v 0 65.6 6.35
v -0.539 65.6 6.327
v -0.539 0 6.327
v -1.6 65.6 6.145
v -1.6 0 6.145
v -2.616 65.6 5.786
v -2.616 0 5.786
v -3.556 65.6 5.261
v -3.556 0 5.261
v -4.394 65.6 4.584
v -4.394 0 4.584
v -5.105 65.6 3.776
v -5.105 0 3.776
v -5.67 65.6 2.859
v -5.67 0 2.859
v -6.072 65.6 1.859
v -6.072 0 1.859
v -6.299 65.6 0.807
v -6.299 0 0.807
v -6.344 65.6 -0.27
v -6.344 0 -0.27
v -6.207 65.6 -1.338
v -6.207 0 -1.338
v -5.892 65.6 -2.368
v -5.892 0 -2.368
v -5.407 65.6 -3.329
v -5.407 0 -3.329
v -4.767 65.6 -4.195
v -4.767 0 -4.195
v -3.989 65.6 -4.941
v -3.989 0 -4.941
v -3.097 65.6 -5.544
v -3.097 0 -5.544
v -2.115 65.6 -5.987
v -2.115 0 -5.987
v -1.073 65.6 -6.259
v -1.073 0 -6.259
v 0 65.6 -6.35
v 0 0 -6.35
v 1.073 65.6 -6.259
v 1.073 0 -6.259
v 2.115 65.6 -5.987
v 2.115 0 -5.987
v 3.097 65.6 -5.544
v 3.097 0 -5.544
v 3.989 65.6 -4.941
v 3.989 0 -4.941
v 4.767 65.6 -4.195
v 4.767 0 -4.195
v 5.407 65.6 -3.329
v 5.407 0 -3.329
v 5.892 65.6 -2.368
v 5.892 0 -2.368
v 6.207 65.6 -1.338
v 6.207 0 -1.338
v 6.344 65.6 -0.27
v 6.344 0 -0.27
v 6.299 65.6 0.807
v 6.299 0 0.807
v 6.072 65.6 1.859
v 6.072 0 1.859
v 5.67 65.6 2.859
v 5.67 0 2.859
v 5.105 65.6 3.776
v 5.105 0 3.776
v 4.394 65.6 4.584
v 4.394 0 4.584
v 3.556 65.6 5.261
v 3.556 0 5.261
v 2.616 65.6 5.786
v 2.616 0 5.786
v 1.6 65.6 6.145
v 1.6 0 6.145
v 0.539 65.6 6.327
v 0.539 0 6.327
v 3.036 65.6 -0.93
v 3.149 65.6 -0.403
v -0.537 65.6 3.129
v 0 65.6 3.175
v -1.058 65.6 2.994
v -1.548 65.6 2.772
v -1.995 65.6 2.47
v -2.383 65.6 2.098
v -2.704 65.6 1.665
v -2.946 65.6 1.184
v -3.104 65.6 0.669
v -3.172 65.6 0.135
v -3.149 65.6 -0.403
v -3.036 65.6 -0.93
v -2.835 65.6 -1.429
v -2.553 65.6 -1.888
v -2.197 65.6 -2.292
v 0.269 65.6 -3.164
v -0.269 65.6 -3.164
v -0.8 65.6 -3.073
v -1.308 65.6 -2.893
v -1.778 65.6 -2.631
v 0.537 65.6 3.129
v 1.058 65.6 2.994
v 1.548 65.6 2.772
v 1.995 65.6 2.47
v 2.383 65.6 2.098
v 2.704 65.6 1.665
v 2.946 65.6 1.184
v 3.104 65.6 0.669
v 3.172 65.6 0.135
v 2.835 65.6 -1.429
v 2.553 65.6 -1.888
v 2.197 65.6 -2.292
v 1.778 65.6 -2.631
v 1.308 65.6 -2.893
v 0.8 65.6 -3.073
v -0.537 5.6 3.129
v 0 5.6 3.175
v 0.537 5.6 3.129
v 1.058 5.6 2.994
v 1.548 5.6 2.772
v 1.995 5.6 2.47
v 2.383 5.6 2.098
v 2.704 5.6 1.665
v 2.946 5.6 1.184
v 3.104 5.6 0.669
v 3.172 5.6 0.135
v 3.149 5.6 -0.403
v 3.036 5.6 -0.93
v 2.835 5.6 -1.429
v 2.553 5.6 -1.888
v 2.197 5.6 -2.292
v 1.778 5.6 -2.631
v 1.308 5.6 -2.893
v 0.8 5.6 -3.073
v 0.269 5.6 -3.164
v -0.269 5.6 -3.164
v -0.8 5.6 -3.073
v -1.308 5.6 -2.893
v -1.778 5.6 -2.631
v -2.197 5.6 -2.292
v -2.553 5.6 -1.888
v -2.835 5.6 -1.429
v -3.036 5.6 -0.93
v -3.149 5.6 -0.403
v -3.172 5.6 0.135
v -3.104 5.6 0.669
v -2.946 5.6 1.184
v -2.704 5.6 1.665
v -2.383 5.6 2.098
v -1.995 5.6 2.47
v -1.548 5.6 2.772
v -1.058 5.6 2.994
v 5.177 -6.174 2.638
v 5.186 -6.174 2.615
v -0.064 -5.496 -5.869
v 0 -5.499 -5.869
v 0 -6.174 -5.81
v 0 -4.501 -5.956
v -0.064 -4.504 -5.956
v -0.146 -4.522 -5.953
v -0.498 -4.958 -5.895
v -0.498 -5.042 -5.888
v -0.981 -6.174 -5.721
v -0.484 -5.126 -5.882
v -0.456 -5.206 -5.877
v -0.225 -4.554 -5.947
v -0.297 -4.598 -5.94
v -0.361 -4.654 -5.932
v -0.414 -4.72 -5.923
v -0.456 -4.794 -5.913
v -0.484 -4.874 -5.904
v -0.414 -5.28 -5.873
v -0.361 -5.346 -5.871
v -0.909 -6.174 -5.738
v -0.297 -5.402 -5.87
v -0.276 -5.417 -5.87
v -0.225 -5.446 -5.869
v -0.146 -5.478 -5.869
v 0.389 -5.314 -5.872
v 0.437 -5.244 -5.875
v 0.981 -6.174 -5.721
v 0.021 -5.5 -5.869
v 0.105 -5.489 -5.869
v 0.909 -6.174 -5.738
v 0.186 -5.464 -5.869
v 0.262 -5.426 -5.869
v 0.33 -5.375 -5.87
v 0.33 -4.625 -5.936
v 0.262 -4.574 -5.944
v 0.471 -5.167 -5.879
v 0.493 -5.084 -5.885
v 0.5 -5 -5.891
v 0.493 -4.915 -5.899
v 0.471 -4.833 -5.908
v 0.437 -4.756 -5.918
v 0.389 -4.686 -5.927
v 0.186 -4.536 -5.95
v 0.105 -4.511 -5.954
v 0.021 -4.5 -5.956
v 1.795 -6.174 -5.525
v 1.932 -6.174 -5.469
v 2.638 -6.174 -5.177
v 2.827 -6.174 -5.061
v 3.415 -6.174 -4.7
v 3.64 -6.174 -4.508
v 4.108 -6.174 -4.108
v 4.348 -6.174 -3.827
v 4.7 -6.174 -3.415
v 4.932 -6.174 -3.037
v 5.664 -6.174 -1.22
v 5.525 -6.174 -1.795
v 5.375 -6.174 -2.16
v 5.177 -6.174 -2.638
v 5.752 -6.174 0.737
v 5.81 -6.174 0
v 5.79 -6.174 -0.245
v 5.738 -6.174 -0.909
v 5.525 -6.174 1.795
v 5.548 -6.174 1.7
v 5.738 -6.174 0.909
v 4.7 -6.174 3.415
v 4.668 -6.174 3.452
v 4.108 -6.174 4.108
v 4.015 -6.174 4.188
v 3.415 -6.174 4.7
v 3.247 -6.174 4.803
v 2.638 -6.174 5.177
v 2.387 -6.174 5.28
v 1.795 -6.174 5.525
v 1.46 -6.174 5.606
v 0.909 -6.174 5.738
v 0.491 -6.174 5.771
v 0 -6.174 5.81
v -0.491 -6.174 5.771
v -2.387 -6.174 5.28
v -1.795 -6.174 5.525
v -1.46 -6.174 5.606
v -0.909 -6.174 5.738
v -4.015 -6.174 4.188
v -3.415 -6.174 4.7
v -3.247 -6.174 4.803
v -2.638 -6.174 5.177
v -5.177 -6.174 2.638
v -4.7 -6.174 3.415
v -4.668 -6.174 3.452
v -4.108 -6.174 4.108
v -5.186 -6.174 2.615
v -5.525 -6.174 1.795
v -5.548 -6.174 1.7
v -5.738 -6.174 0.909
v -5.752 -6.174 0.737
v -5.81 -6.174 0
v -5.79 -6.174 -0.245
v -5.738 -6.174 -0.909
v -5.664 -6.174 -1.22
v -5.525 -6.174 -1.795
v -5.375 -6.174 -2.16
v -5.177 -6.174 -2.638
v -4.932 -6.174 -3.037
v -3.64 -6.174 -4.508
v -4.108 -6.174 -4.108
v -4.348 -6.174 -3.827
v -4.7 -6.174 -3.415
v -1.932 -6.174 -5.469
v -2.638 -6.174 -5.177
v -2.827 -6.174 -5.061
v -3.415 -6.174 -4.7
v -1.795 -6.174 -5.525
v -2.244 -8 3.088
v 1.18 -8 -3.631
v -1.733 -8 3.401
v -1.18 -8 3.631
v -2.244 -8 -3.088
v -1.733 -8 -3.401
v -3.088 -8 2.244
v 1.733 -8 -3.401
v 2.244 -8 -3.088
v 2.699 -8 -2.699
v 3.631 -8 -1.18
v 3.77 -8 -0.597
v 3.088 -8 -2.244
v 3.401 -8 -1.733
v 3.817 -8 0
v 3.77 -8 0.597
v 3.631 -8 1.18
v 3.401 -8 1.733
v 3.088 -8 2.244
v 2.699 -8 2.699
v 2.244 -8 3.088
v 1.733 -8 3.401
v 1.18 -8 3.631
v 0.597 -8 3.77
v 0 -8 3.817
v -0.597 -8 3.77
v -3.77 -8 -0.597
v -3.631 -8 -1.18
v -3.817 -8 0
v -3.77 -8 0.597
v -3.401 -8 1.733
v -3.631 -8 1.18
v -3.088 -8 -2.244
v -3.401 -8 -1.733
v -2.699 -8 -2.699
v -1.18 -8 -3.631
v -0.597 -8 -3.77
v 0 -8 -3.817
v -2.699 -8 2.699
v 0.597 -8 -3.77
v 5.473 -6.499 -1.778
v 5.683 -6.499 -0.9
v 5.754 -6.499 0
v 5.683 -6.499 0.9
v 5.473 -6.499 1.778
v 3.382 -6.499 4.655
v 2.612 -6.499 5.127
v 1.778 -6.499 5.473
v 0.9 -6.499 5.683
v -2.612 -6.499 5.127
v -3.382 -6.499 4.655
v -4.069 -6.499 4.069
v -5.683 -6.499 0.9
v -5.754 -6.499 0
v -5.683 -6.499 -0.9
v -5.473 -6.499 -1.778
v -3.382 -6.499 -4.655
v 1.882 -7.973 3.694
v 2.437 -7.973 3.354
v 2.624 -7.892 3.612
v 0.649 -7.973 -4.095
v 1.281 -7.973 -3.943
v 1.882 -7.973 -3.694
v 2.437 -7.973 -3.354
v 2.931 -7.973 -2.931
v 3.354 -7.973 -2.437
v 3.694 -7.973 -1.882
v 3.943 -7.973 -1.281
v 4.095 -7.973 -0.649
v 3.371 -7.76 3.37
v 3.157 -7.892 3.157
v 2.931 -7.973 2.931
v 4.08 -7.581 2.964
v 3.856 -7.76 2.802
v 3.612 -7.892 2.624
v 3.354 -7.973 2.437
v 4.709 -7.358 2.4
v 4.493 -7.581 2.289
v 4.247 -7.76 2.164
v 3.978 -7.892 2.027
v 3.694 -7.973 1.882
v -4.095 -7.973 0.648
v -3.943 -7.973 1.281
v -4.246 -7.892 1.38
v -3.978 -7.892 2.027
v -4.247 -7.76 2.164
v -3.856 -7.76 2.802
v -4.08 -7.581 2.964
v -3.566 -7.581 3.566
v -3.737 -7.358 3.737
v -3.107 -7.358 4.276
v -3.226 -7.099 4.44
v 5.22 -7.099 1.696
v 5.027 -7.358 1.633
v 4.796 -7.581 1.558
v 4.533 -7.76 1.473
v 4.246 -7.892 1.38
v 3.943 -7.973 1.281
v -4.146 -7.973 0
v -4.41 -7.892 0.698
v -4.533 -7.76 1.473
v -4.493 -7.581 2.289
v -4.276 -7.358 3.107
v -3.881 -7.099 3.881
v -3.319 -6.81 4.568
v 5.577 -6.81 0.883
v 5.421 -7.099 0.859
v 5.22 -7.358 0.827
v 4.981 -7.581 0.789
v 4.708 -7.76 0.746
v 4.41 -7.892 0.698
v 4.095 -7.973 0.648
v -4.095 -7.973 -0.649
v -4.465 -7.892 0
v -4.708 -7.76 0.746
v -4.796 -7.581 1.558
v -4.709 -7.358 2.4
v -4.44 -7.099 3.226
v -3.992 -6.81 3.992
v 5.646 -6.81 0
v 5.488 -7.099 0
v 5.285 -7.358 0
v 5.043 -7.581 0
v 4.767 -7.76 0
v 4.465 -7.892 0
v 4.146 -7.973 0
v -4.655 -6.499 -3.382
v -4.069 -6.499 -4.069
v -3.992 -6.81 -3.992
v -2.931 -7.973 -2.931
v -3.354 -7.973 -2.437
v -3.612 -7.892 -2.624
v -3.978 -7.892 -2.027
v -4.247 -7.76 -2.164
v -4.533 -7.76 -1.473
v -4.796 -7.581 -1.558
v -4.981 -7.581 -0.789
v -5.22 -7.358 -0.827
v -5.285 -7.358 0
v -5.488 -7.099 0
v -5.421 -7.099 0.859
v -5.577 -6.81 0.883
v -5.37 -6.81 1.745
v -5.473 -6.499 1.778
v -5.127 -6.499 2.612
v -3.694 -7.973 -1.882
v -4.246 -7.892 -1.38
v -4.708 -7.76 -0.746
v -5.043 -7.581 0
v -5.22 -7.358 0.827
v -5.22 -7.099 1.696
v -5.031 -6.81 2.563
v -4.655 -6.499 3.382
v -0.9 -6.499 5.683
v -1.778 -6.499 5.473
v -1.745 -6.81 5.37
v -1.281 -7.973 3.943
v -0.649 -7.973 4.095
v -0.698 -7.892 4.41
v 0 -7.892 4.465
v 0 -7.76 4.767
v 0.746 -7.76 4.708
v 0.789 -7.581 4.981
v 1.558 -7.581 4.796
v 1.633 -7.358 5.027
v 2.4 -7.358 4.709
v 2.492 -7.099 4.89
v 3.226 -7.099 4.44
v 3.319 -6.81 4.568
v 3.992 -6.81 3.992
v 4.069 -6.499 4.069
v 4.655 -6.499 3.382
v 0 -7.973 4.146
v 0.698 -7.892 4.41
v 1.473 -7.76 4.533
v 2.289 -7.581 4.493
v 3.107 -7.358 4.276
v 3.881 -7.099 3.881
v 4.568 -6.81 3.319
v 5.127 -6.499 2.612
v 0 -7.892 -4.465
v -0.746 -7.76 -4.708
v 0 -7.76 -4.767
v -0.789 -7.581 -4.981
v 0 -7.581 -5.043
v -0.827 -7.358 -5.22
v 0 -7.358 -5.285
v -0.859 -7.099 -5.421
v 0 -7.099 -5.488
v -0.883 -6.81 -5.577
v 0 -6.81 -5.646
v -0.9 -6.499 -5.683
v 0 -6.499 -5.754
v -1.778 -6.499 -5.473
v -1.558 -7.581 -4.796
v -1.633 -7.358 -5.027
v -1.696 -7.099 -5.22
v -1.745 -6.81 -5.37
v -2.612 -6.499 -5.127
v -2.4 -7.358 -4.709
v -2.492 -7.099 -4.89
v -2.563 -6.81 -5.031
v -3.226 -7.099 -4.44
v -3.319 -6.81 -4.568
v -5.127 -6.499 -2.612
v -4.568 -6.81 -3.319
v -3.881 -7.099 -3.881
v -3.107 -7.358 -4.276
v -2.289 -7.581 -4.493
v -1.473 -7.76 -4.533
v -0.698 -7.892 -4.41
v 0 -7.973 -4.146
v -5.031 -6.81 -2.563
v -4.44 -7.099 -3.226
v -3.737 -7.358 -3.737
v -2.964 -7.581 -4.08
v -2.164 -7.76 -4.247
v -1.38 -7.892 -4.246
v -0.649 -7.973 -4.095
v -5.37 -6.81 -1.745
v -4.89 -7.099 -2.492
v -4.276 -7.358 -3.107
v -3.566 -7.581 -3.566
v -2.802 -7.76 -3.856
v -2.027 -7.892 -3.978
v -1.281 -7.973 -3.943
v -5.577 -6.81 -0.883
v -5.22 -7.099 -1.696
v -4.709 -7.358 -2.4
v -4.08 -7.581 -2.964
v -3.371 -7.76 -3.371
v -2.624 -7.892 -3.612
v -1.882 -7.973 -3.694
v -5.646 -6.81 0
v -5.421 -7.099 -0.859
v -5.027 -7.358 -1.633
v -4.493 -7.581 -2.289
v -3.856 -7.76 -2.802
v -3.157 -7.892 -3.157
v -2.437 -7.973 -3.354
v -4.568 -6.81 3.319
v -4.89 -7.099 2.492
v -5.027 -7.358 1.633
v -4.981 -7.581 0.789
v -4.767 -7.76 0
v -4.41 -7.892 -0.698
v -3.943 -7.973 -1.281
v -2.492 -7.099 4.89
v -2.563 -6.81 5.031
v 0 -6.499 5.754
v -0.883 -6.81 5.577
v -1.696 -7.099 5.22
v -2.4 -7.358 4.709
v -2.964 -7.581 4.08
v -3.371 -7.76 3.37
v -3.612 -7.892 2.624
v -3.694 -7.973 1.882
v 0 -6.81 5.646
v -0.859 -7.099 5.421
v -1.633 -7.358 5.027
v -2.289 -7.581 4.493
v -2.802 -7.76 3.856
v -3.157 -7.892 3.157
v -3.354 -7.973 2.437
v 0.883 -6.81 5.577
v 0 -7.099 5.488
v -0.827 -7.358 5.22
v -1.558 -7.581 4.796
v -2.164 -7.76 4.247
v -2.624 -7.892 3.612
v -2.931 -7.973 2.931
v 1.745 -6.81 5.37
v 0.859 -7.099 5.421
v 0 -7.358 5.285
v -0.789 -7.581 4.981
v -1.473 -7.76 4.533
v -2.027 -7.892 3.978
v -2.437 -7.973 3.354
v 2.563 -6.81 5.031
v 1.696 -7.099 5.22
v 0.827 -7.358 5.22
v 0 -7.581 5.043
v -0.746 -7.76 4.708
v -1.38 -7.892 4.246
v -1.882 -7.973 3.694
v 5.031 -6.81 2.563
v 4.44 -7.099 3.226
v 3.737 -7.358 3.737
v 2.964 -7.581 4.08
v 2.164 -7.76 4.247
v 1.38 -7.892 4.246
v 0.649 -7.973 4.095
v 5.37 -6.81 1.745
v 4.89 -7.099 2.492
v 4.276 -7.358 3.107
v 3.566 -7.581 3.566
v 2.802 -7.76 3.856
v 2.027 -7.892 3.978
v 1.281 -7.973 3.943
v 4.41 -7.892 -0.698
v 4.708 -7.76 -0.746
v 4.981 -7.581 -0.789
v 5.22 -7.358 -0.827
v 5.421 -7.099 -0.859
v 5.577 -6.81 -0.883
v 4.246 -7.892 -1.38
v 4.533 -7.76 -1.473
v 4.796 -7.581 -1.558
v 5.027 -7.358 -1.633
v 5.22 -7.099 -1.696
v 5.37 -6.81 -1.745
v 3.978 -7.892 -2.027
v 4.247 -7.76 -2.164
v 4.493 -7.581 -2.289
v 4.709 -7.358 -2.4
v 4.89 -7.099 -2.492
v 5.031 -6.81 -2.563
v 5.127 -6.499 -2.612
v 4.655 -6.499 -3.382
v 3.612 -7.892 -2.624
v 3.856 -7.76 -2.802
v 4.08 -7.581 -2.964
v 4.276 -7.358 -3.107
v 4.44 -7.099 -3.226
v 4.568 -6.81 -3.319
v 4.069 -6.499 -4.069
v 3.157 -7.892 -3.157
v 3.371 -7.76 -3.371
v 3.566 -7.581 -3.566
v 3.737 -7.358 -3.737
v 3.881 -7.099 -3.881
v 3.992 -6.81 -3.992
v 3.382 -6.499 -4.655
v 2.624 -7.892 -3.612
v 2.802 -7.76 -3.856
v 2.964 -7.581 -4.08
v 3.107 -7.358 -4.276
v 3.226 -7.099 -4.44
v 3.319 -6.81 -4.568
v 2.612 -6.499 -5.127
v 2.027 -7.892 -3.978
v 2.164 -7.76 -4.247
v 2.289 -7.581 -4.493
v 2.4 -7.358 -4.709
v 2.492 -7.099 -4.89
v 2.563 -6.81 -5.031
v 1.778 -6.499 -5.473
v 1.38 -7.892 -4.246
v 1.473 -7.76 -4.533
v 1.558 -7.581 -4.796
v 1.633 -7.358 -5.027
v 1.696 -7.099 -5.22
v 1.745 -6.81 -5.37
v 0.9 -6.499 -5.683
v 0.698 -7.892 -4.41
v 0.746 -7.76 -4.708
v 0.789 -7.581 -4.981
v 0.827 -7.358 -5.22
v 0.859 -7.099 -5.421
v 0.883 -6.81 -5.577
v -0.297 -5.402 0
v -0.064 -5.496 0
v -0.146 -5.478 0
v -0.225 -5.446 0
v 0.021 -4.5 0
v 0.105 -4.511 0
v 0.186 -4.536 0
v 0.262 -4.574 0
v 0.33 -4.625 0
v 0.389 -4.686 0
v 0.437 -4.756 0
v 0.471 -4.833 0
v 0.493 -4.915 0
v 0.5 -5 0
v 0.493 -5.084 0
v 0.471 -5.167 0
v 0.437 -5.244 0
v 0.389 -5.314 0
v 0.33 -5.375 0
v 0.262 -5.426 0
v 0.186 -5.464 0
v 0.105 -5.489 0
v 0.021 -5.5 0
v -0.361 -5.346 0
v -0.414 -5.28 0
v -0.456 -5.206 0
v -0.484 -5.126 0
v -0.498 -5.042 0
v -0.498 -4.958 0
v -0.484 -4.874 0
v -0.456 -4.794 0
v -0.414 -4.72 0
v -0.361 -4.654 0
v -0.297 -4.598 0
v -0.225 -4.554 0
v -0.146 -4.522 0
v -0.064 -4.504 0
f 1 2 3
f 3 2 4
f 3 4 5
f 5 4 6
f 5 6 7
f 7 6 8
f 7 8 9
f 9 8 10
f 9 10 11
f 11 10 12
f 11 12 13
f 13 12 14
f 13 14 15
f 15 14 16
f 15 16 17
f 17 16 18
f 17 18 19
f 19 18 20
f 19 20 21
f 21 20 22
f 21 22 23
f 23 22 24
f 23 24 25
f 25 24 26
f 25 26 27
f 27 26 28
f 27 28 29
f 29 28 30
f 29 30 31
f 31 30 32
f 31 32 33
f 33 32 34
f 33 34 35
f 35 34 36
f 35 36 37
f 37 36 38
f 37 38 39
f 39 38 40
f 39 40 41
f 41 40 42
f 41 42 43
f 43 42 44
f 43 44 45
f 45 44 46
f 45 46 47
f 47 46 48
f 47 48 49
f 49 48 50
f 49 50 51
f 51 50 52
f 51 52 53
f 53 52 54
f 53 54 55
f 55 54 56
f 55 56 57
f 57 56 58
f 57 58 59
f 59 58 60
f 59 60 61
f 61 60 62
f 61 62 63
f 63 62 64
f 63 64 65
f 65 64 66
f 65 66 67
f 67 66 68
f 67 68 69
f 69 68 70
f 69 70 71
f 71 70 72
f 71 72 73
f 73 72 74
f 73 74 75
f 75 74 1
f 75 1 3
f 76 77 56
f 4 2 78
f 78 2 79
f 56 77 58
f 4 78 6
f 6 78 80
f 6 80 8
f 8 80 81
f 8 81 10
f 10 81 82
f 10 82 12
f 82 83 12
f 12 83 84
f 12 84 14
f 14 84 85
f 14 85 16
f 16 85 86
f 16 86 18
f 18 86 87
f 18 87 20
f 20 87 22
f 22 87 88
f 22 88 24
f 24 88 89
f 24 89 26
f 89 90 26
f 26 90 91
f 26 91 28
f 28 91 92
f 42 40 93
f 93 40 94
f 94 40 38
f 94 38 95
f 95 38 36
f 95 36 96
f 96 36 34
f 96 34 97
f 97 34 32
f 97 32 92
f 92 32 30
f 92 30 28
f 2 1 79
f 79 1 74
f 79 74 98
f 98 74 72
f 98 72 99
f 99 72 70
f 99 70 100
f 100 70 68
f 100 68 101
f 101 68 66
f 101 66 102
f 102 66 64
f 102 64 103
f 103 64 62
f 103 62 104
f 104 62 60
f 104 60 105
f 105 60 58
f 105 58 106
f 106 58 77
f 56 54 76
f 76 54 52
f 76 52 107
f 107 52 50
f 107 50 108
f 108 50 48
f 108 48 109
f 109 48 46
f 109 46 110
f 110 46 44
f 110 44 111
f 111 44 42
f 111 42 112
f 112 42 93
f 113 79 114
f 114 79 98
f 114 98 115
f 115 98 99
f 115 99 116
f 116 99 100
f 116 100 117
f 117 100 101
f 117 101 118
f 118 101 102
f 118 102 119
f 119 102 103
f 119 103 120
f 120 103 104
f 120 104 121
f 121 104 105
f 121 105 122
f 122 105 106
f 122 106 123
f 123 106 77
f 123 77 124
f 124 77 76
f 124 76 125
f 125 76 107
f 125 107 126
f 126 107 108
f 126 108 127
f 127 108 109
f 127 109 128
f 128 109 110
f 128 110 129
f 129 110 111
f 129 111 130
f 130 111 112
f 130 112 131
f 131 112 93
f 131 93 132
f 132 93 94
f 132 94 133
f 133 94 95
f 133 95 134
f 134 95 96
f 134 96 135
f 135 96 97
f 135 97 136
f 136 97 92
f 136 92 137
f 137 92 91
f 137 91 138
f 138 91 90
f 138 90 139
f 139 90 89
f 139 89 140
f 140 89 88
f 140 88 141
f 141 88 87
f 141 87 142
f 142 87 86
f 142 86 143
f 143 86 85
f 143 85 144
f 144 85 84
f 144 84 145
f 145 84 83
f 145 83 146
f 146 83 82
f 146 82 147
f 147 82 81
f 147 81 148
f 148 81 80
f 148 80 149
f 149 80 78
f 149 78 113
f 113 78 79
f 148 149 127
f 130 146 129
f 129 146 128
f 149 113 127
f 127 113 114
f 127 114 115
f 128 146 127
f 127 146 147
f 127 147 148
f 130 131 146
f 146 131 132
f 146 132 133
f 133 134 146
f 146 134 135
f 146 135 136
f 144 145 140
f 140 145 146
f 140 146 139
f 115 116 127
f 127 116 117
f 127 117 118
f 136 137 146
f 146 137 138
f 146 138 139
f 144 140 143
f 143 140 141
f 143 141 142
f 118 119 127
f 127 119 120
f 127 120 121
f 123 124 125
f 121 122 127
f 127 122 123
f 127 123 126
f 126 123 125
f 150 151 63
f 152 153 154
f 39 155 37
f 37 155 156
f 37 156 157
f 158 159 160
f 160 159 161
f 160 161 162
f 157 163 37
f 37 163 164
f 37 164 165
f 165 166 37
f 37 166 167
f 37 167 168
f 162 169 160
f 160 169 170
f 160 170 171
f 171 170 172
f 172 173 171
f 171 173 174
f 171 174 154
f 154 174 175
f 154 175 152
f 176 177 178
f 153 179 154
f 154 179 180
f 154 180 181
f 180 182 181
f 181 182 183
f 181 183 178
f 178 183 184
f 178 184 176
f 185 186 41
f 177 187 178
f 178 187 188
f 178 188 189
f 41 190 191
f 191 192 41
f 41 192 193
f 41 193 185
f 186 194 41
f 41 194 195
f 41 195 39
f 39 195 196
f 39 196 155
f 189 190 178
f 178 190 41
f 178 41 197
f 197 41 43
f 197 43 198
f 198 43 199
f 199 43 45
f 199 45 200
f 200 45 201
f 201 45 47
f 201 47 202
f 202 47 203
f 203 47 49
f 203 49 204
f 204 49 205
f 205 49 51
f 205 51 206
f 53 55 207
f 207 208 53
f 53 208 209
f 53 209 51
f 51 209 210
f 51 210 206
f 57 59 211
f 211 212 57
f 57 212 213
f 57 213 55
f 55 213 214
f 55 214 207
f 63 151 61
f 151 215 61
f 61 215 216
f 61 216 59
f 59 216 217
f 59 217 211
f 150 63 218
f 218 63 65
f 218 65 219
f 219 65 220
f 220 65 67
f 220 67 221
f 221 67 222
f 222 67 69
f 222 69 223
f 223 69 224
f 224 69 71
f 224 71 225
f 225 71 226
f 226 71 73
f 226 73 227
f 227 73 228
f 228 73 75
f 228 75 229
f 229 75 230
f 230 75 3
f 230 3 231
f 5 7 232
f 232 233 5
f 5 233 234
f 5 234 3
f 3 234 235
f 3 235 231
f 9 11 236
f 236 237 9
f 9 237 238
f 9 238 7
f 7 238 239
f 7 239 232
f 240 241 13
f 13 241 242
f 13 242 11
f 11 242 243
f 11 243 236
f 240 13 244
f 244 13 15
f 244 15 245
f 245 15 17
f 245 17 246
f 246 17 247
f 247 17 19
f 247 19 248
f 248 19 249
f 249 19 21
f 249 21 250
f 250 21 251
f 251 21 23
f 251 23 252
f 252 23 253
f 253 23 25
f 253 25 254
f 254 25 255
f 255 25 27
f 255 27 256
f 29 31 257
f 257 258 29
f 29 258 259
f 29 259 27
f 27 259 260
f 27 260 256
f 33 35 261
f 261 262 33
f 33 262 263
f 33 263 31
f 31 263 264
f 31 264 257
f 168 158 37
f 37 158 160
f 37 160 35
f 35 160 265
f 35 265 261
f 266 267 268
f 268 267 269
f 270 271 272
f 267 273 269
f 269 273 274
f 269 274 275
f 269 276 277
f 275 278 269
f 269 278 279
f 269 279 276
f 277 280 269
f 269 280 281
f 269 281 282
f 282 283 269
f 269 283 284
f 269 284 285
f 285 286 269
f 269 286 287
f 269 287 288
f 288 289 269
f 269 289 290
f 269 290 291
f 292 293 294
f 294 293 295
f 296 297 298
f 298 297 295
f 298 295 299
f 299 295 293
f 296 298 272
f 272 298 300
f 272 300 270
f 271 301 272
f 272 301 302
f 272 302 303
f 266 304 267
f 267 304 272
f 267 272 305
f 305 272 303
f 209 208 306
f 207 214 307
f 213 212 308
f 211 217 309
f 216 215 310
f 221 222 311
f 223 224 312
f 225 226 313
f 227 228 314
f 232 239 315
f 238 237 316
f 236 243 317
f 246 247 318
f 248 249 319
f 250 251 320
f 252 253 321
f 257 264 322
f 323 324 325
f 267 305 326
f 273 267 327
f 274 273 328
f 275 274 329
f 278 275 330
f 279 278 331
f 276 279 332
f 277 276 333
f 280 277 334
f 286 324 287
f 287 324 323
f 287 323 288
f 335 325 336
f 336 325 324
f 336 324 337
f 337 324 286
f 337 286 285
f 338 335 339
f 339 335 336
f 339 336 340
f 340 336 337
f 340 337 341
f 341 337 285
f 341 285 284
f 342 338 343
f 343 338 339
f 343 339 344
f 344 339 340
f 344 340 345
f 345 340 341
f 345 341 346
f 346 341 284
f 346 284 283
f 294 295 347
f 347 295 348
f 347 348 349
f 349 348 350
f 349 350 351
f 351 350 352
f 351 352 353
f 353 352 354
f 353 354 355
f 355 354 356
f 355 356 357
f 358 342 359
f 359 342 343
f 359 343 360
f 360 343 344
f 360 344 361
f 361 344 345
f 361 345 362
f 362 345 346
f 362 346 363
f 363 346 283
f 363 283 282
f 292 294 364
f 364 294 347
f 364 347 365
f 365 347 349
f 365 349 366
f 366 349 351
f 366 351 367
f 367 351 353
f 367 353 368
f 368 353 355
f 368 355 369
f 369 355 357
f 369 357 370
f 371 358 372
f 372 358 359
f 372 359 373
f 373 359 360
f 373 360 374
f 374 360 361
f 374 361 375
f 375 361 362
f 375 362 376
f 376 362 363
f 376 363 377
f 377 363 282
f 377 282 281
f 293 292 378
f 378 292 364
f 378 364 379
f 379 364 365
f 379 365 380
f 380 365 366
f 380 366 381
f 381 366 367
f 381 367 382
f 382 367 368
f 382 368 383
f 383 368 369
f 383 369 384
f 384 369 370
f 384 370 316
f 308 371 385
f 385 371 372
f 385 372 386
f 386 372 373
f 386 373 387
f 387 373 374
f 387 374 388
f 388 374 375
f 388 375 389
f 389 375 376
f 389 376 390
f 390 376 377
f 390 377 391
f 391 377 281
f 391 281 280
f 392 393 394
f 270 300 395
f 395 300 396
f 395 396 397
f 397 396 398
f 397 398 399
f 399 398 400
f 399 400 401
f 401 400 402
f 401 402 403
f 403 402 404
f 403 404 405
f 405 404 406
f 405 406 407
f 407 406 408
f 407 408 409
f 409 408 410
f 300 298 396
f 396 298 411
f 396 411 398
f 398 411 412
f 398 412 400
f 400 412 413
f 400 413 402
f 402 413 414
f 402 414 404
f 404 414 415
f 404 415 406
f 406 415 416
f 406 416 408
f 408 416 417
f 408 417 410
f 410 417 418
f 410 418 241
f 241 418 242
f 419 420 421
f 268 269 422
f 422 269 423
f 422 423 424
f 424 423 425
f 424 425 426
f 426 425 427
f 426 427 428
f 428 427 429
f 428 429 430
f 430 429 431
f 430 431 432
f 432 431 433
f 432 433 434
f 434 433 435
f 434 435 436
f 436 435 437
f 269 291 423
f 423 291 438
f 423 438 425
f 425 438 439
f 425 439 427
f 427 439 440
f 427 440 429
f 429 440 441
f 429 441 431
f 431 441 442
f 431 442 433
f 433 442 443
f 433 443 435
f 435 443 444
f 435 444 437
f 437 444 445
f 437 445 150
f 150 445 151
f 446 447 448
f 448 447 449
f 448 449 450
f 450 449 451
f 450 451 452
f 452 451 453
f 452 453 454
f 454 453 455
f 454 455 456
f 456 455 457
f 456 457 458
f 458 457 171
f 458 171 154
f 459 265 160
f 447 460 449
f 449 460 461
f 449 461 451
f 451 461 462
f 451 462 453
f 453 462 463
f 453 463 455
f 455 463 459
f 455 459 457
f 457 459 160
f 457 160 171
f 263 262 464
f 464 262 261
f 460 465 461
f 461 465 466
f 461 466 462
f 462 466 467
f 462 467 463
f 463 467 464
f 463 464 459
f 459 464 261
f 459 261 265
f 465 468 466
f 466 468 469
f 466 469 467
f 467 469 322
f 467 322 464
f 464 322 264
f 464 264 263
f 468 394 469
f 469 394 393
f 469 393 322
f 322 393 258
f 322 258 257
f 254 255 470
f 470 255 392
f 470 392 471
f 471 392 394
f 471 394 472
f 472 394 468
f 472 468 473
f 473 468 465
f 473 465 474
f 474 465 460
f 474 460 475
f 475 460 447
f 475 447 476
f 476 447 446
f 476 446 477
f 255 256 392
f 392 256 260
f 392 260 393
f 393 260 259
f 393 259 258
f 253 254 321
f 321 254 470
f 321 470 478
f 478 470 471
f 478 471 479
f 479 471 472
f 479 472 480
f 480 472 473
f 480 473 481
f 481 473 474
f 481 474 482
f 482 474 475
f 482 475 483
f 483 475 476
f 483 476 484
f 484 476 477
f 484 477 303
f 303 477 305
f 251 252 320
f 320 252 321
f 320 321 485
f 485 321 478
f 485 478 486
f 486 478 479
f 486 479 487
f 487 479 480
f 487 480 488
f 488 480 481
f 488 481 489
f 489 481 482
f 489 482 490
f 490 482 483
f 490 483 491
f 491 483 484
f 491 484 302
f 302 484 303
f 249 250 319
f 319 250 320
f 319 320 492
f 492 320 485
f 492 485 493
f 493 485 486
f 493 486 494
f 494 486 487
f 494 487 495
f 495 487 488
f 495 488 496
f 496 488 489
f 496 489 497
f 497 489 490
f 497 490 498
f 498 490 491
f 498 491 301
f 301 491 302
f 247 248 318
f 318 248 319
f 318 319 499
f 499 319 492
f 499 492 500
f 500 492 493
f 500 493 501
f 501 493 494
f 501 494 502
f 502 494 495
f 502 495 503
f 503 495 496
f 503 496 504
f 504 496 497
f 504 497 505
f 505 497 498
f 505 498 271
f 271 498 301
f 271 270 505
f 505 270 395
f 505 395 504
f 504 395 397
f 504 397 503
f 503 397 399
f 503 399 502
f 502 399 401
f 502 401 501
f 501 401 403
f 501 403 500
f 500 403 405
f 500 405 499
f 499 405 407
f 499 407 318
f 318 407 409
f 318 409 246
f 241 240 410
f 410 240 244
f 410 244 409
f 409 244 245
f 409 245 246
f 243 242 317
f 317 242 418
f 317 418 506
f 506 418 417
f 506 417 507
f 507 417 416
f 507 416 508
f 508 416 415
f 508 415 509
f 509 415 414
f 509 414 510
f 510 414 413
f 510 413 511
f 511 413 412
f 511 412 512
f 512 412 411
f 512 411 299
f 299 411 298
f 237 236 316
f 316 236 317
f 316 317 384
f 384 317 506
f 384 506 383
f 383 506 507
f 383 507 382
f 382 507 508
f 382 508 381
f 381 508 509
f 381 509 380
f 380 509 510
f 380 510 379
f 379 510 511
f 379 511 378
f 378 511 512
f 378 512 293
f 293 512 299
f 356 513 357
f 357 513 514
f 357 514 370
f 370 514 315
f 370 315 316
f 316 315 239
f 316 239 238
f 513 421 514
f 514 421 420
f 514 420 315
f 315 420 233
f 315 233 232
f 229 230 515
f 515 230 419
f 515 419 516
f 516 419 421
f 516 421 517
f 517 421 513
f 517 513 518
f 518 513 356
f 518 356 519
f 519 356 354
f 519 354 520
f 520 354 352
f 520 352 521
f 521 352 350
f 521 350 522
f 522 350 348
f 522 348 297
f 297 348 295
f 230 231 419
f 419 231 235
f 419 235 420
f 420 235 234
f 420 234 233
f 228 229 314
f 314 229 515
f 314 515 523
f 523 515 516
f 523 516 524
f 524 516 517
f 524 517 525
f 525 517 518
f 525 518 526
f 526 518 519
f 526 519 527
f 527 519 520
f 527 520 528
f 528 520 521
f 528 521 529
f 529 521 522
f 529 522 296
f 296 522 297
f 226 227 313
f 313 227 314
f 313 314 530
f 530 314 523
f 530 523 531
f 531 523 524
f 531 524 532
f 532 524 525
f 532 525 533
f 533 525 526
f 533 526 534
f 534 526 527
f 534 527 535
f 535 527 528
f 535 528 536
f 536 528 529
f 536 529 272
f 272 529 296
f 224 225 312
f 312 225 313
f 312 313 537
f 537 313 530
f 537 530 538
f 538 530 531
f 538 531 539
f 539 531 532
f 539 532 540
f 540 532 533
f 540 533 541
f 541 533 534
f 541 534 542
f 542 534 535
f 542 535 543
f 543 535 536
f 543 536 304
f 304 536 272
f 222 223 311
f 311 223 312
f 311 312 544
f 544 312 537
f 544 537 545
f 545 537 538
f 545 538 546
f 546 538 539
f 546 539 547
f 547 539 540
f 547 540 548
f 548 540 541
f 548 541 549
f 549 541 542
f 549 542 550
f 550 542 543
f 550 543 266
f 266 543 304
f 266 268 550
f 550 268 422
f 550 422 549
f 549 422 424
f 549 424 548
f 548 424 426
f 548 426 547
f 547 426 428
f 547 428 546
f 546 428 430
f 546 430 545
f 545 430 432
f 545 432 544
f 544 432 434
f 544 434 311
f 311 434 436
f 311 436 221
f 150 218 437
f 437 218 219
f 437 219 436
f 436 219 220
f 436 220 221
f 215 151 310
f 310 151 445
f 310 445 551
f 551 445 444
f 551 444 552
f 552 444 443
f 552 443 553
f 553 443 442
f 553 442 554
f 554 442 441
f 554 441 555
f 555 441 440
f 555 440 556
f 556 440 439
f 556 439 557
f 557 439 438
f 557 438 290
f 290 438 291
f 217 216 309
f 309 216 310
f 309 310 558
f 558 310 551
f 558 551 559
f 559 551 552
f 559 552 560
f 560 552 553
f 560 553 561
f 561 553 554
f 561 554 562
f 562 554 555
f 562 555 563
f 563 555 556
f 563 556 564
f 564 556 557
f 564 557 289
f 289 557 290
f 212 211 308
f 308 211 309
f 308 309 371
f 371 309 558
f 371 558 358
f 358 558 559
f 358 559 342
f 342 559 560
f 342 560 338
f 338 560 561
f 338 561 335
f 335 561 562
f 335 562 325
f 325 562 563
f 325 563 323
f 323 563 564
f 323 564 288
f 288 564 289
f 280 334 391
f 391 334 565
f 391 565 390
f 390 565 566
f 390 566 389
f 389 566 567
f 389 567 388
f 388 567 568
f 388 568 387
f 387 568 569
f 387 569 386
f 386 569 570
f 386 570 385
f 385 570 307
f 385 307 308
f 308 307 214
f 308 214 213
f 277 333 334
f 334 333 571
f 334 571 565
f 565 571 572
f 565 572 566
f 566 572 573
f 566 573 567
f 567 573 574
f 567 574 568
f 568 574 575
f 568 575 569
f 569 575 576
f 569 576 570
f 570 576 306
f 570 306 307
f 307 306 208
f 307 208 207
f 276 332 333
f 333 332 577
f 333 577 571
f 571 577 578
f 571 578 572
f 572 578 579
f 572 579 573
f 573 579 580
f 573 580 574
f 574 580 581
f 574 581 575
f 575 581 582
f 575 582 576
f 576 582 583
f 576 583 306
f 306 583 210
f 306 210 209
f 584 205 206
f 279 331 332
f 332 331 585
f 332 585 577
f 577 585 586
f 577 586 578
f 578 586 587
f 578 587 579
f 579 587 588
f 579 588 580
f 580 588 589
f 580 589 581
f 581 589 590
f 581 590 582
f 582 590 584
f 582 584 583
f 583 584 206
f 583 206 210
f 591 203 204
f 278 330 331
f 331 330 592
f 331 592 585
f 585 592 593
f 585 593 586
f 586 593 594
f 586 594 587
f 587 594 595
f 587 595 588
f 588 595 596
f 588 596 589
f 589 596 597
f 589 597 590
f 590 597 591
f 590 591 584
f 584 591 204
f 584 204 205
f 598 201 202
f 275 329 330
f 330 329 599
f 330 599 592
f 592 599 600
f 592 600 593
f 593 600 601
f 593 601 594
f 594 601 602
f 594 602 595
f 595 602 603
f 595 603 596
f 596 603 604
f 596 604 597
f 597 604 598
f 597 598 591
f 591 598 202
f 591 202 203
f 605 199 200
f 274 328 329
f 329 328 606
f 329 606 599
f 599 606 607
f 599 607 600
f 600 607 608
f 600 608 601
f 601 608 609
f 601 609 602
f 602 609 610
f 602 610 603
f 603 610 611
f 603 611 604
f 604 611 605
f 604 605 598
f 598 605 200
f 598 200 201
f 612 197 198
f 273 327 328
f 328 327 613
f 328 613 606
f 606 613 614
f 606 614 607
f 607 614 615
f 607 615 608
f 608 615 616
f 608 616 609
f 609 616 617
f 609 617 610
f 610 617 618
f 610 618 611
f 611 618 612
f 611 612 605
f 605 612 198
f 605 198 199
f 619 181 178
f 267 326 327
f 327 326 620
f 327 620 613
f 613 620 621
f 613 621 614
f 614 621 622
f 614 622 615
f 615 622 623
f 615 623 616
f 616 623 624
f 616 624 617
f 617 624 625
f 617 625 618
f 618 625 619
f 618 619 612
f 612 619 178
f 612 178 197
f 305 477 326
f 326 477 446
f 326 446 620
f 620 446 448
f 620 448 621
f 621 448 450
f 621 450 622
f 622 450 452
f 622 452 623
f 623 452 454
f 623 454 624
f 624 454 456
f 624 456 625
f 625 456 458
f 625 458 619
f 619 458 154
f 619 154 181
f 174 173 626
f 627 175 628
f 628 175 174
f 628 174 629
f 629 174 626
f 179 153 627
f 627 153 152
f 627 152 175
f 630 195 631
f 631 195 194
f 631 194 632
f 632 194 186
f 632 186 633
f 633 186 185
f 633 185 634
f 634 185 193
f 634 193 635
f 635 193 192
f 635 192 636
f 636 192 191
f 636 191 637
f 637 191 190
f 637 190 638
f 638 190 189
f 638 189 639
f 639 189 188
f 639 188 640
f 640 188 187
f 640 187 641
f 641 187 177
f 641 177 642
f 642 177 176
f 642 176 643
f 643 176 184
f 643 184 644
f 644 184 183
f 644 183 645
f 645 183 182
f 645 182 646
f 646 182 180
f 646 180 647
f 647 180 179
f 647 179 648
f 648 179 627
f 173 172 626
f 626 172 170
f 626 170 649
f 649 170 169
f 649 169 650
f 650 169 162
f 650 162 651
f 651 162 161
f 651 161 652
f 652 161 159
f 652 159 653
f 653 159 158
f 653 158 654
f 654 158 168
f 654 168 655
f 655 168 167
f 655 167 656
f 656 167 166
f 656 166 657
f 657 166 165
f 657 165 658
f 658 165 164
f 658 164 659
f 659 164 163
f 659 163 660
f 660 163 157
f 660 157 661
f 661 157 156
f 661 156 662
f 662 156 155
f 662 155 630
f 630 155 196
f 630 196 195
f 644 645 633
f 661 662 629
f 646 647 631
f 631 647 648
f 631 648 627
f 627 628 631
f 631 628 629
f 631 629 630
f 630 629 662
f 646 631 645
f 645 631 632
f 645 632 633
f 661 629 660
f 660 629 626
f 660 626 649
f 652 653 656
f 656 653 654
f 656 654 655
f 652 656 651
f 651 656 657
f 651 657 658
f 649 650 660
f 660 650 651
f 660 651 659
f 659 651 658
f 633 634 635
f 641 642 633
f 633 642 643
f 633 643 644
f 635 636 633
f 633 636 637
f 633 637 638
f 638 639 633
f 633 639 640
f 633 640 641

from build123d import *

# Parameters (mm, degrees)
SKETCH1_R           = 6.35
BOSS_EXTRUDE1_DEPTH = 65.6
SKETCH2_R           = 3.175
INNER_CHAMBER_DEPTH = 60
SKETCH4_R           = 6.35
HEAD_DEPTH          = 8
HEAD_TAPER          = 5
FILLET1_R           = 2
SKETCH5_R           = 0.5
CUT_EXTRUDE2_DEPTH  = 8


with BuildPart() as part:
    # Sketch1 → Boss-Extrude1 (new body)
    with BuildSketch(Plane(origin=(0, 0, 0), x_dir=(1, 0, 0), z_dir=(0, 1, 0))):
        with Locations(Location((0, 0, 0), (0, 0, 270))):
            Circle(SKETCH1_R)
    extrude(amount=BOSS_EXTRUDE1_DEPTH)

    # Sketch2 → Inner Chamber (cut)
    with BuildSketch(Plane(origin=(0, 65.6, 0), x_dir=(1, 0, 0), z_dir=(0, 1, 0))):
        with Locations(Location((0, 0, 0), (0, 0, 270))):
            Circle(SKETCH2_R)
    extrude(amount=-INNER_CHAMBER_DEPTH, mode=Mode.SUBTRACT)

    # Sketch4 → Head (add)
    with BuildSketch(Plane.XZ):
        with Locations(Location((0, 0, 0), (0, 0, 270))):
            Circle(SKETCH4_R)
    extrude(amount=HEAD_DEPTH, taper=HEAD_TAPER)

    # Fillet1
    fillet1_edges = [part.edges().sort_by_distance(p)[0] for p in [
        (0, -8, 5.650090692),
    ]]
    fillet(fillet1_edges, radius=FILLET1_R)

    # Sketch5 → Cut-Extrude2 (cut)
    with BuildSketch(Plane.XY):
        with Locations((0, -5)):
            Circle(SKETCH5_R)
    extrude(amount=-CUT_EXTRUDE2_DEPTH, mode=Mode.SUBTRACT)


solid = part.part
